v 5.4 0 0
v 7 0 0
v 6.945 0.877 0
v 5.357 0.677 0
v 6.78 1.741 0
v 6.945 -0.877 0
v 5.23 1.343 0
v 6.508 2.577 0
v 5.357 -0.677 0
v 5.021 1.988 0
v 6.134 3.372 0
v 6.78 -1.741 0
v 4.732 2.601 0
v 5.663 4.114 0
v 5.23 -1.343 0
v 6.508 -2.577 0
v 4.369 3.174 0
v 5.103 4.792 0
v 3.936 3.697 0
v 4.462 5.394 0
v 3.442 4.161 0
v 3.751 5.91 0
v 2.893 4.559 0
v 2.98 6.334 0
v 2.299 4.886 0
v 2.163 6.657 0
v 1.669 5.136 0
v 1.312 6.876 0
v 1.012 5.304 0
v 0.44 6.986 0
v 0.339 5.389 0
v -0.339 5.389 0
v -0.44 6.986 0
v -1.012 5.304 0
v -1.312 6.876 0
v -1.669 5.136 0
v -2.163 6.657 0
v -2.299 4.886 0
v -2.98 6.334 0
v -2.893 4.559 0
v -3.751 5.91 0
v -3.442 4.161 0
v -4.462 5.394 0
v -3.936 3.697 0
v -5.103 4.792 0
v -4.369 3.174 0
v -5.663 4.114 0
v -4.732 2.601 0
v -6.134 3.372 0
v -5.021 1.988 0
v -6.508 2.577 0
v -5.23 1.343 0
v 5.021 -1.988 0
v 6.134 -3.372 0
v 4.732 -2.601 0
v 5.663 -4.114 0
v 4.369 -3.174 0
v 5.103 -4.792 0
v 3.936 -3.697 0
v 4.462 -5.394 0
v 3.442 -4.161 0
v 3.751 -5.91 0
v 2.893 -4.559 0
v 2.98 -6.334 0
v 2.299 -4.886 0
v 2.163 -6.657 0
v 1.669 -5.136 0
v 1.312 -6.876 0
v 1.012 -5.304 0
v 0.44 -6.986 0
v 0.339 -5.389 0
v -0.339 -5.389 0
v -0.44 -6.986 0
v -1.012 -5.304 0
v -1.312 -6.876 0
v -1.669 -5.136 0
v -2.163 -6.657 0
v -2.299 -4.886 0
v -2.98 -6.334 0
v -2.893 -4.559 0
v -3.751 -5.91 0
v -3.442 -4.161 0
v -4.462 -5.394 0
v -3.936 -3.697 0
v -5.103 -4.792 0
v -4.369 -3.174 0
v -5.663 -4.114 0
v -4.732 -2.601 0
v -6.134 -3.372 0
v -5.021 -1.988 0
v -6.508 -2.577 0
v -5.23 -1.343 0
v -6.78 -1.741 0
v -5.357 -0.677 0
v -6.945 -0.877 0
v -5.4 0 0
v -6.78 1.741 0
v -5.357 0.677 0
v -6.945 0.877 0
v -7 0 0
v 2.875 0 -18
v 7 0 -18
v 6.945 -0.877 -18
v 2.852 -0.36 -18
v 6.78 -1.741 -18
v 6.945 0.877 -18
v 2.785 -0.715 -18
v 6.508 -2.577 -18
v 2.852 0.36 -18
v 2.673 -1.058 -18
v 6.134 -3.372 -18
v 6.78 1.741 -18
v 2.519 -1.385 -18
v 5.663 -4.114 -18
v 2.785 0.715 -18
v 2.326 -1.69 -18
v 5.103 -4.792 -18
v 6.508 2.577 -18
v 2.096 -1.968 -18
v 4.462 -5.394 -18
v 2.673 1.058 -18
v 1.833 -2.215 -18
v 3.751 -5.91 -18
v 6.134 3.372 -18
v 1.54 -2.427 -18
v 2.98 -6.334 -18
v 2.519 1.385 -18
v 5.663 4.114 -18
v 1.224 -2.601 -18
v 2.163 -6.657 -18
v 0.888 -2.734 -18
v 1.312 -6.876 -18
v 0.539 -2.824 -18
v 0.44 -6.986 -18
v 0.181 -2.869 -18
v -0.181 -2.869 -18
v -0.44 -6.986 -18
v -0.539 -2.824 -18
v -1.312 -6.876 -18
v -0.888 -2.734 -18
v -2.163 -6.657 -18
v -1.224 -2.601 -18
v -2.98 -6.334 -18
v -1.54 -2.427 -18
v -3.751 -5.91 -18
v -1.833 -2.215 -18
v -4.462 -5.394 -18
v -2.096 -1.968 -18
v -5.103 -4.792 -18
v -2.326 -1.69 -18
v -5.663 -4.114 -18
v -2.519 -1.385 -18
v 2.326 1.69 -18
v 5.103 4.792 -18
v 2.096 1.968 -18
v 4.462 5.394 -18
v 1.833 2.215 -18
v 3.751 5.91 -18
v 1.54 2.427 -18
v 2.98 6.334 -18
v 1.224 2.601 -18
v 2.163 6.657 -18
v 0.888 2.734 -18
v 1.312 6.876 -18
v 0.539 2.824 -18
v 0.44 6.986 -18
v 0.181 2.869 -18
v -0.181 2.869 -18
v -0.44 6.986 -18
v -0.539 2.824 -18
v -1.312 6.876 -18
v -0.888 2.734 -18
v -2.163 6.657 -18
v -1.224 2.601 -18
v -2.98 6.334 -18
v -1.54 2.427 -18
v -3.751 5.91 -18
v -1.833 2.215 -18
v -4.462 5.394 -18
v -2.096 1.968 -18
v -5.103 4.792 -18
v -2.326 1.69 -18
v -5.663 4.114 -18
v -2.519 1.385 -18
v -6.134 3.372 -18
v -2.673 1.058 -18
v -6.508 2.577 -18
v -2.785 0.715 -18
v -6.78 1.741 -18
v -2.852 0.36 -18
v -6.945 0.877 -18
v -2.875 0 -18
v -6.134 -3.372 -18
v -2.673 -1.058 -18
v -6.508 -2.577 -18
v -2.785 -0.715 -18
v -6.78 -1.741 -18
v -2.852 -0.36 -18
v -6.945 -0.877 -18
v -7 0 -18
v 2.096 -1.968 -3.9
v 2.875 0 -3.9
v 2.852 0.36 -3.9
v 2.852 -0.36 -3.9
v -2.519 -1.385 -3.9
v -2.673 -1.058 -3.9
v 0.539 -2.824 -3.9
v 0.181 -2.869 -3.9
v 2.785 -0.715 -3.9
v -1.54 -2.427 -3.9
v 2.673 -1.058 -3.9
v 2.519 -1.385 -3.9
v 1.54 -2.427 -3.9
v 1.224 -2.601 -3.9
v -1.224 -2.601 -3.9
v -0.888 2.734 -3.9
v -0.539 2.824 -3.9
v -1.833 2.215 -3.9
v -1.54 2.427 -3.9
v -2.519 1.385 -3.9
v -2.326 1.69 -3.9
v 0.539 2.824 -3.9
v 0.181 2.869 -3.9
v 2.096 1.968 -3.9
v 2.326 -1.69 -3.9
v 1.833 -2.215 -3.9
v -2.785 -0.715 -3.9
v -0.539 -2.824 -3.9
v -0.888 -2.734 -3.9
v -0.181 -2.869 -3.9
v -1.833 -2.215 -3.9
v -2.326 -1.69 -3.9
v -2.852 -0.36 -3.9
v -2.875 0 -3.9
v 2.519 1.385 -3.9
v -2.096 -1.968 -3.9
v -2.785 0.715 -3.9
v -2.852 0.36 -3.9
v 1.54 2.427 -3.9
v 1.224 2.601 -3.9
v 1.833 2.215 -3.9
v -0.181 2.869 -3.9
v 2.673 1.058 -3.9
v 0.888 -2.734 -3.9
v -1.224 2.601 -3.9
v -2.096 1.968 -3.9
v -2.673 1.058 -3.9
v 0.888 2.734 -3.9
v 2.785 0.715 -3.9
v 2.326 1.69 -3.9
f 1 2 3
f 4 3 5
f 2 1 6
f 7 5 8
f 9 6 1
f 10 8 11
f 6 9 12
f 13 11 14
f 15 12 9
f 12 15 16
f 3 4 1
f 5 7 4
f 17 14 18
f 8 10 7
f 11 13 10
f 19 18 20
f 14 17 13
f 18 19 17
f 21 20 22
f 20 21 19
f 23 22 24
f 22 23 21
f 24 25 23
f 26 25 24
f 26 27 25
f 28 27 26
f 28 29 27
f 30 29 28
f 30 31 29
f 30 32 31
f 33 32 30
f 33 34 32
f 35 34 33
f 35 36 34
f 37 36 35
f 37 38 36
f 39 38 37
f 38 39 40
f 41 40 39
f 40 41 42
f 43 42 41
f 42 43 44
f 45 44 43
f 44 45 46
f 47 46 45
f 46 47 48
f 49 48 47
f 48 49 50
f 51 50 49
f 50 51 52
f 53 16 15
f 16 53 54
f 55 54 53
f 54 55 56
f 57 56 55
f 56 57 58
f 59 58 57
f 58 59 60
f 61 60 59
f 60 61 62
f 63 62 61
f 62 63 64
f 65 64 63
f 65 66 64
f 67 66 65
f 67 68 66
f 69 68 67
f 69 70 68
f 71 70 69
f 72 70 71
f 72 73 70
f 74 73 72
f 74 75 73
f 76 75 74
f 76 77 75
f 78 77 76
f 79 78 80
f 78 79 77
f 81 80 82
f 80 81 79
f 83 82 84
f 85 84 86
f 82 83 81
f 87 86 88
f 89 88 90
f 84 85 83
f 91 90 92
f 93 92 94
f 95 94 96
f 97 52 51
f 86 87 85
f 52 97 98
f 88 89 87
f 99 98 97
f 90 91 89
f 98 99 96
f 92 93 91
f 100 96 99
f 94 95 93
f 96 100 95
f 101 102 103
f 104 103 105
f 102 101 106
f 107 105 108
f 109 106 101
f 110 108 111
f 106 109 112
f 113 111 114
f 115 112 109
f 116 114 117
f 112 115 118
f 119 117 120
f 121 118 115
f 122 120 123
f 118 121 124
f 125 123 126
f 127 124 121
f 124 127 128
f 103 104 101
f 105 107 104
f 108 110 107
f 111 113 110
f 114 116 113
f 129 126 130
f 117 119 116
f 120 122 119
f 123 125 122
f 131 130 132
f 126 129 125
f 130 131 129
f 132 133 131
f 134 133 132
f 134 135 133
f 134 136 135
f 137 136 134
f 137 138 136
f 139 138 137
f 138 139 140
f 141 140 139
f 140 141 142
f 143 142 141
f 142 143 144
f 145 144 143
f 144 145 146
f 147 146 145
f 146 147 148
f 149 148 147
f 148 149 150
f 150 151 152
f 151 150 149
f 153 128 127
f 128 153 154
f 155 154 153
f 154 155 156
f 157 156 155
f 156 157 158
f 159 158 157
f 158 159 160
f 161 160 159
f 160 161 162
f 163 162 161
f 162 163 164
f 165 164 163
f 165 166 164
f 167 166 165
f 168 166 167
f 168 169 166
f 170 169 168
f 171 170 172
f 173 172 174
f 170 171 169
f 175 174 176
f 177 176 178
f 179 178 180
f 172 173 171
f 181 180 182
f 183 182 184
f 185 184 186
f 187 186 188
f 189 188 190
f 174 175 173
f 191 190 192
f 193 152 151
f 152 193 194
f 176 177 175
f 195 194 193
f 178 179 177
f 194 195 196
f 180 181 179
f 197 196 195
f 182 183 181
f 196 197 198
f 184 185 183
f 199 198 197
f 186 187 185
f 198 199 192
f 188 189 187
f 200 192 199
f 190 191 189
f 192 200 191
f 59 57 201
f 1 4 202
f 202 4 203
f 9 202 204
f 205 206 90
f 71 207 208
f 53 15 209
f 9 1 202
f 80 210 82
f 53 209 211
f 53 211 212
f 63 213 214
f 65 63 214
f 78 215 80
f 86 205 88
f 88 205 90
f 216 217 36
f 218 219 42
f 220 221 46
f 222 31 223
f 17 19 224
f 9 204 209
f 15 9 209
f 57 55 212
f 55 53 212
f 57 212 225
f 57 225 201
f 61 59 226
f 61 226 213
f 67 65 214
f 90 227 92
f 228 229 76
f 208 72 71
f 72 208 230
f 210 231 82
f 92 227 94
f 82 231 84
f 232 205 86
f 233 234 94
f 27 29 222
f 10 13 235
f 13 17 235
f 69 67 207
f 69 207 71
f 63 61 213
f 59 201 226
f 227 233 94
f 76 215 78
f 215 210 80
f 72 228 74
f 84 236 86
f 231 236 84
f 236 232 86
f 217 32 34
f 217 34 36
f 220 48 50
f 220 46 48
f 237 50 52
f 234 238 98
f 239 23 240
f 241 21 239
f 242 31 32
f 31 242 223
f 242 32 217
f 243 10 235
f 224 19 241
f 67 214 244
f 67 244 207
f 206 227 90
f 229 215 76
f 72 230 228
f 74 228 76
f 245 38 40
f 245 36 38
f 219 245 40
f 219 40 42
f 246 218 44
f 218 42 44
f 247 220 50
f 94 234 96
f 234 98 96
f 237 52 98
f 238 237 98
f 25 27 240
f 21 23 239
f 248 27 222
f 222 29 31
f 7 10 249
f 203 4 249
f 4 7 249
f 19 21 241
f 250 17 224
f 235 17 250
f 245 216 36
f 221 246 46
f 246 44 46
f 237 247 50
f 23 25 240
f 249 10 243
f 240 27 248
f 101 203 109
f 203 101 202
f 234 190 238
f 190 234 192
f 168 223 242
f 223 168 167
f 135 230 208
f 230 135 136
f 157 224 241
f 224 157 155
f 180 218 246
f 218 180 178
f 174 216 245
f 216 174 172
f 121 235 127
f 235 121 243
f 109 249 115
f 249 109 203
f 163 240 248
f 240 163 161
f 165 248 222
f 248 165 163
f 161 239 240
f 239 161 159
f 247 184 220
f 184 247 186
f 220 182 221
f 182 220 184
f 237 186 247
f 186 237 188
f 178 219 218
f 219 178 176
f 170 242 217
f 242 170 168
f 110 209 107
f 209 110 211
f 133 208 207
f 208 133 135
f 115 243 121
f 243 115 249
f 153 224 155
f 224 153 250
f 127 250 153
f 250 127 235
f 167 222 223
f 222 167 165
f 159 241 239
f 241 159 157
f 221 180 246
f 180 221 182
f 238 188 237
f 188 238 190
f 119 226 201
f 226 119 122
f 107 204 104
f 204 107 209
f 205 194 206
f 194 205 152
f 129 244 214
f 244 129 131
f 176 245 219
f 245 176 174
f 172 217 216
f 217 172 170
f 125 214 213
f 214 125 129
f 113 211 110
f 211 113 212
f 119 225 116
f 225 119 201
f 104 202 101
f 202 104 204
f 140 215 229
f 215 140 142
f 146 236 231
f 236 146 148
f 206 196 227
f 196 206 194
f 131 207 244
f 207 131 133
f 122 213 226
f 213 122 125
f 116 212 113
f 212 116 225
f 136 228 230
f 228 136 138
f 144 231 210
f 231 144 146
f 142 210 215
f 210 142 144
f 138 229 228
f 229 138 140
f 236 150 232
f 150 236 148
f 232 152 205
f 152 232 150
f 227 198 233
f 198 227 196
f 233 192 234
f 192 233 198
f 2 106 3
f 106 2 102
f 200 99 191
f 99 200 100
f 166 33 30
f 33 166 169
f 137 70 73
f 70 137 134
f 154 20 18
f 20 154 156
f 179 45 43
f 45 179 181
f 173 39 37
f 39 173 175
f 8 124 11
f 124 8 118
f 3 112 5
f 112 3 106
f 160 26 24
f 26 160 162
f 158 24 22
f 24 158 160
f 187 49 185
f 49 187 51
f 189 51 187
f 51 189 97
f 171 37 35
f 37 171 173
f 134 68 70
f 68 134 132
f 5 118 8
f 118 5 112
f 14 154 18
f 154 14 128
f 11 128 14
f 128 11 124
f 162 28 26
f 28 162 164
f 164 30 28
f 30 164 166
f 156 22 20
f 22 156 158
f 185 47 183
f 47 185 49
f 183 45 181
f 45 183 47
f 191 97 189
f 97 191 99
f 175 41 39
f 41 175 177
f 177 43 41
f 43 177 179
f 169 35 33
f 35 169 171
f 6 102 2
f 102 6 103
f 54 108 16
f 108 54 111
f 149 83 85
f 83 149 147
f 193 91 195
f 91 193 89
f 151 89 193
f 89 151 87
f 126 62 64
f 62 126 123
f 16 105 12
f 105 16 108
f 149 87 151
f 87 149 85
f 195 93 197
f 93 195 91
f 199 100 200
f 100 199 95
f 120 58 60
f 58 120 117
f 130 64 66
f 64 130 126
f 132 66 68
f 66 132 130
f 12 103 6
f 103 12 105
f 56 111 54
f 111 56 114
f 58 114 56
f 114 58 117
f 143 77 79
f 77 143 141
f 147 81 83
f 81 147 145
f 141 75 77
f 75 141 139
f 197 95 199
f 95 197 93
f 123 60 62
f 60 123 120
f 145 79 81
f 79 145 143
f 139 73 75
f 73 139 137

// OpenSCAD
$fn = 50;


difference() {
	union() {
		translate(v = [0, 0, -18.0000000000]) {
			cylinder(h = 18, r = 7.0000000000);
		}
		cylinder(h = 0, r = 13.0000000000);
	}
	union() {
		translate(v = [0, 0, 0]) {
			rotate(a = [0, 0, 0]) {
				difference() {
					union() {
						#translate(v = [0, 0, -18.0000000000]) {
							cylinder(h = 18, r = 2.6000000000);
						}
						#translate(v = [0, 0, -3.9000000000]) {
							cylinder(h = 3.9000000000, r1 = 2.8750000000, r2 = 5.4000000000);
						}
						#translate(v = [0, 0, -18.0000000000]) {
							cylinder(h = 18, r = 2.8750000000);
						}
						#translate(v = [0, 0, -18.0000000000]) {
							cylinder(h = 18, r = 2.6000000000);
						}
					}
					union();
				}
			}
		}
	}
}
